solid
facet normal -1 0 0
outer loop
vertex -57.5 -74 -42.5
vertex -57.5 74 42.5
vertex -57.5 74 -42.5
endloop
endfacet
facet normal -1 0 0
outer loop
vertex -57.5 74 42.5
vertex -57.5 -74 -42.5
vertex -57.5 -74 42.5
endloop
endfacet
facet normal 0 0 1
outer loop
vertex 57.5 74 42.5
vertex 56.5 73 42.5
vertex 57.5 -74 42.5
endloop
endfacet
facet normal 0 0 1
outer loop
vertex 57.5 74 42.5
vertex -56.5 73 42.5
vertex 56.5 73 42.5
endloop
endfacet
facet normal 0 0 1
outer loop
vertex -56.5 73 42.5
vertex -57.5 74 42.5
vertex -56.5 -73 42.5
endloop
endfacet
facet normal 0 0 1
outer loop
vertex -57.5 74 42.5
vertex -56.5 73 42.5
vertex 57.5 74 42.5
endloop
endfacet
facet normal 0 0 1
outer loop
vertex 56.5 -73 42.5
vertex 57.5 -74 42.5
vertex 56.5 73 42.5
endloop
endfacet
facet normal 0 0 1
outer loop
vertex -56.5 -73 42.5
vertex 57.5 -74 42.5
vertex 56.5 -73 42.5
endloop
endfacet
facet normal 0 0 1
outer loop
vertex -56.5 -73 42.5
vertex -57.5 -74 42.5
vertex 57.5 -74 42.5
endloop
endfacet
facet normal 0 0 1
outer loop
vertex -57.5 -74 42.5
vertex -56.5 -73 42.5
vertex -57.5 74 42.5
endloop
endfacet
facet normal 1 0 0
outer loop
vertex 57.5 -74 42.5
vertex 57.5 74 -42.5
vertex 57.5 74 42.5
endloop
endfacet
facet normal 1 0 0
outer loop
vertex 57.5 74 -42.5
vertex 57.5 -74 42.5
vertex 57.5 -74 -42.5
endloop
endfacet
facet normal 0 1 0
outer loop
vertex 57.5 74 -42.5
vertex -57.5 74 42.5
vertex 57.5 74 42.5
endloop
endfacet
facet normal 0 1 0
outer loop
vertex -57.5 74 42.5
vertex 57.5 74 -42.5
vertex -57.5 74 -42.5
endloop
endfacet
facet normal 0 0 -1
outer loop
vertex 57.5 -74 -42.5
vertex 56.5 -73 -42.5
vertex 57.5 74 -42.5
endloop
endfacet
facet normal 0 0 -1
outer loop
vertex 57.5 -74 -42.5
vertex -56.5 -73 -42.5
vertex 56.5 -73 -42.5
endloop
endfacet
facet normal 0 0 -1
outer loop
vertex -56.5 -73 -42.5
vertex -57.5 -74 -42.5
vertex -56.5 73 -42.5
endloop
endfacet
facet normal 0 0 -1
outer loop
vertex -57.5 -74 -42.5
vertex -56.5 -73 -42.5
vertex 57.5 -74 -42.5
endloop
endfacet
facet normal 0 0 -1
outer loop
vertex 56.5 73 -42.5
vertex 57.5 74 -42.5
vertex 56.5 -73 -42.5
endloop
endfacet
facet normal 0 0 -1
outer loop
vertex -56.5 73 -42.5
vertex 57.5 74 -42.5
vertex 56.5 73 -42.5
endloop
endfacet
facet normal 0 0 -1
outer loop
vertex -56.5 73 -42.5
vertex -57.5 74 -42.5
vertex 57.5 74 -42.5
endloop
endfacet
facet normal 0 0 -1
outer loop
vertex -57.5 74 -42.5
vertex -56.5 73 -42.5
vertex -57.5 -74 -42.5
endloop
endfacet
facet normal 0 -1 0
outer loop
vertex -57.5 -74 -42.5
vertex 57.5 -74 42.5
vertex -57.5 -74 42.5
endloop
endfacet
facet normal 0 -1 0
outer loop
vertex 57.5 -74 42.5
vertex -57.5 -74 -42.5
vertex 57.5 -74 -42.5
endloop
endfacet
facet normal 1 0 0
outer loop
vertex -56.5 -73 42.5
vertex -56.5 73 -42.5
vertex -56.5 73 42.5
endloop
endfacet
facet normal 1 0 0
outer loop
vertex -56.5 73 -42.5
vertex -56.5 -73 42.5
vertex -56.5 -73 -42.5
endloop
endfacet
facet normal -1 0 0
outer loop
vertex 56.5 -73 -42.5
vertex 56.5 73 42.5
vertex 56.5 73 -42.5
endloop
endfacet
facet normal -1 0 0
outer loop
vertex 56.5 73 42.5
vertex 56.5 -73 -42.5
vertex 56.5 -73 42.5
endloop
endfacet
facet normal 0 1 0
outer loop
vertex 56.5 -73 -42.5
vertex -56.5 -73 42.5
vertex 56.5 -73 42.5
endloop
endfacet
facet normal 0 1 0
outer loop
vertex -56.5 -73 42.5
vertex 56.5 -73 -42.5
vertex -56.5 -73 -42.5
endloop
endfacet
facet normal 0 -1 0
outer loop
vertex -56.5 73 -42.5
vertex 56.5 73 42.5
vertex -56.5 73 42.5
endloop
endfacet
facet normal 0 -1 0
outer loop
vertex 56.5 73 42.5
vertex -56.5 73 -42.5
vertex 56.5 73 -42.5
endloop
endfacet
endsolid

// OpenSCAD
width = 115;
// width = 10;
depth = 148;
// depth = 10;
height = 85;    

wallThickness = 2;

difference() { 
    cube([width, depth, height], center = true);
    cube([width - wallThickness, depth - wallThickness, height], center = true);
}
